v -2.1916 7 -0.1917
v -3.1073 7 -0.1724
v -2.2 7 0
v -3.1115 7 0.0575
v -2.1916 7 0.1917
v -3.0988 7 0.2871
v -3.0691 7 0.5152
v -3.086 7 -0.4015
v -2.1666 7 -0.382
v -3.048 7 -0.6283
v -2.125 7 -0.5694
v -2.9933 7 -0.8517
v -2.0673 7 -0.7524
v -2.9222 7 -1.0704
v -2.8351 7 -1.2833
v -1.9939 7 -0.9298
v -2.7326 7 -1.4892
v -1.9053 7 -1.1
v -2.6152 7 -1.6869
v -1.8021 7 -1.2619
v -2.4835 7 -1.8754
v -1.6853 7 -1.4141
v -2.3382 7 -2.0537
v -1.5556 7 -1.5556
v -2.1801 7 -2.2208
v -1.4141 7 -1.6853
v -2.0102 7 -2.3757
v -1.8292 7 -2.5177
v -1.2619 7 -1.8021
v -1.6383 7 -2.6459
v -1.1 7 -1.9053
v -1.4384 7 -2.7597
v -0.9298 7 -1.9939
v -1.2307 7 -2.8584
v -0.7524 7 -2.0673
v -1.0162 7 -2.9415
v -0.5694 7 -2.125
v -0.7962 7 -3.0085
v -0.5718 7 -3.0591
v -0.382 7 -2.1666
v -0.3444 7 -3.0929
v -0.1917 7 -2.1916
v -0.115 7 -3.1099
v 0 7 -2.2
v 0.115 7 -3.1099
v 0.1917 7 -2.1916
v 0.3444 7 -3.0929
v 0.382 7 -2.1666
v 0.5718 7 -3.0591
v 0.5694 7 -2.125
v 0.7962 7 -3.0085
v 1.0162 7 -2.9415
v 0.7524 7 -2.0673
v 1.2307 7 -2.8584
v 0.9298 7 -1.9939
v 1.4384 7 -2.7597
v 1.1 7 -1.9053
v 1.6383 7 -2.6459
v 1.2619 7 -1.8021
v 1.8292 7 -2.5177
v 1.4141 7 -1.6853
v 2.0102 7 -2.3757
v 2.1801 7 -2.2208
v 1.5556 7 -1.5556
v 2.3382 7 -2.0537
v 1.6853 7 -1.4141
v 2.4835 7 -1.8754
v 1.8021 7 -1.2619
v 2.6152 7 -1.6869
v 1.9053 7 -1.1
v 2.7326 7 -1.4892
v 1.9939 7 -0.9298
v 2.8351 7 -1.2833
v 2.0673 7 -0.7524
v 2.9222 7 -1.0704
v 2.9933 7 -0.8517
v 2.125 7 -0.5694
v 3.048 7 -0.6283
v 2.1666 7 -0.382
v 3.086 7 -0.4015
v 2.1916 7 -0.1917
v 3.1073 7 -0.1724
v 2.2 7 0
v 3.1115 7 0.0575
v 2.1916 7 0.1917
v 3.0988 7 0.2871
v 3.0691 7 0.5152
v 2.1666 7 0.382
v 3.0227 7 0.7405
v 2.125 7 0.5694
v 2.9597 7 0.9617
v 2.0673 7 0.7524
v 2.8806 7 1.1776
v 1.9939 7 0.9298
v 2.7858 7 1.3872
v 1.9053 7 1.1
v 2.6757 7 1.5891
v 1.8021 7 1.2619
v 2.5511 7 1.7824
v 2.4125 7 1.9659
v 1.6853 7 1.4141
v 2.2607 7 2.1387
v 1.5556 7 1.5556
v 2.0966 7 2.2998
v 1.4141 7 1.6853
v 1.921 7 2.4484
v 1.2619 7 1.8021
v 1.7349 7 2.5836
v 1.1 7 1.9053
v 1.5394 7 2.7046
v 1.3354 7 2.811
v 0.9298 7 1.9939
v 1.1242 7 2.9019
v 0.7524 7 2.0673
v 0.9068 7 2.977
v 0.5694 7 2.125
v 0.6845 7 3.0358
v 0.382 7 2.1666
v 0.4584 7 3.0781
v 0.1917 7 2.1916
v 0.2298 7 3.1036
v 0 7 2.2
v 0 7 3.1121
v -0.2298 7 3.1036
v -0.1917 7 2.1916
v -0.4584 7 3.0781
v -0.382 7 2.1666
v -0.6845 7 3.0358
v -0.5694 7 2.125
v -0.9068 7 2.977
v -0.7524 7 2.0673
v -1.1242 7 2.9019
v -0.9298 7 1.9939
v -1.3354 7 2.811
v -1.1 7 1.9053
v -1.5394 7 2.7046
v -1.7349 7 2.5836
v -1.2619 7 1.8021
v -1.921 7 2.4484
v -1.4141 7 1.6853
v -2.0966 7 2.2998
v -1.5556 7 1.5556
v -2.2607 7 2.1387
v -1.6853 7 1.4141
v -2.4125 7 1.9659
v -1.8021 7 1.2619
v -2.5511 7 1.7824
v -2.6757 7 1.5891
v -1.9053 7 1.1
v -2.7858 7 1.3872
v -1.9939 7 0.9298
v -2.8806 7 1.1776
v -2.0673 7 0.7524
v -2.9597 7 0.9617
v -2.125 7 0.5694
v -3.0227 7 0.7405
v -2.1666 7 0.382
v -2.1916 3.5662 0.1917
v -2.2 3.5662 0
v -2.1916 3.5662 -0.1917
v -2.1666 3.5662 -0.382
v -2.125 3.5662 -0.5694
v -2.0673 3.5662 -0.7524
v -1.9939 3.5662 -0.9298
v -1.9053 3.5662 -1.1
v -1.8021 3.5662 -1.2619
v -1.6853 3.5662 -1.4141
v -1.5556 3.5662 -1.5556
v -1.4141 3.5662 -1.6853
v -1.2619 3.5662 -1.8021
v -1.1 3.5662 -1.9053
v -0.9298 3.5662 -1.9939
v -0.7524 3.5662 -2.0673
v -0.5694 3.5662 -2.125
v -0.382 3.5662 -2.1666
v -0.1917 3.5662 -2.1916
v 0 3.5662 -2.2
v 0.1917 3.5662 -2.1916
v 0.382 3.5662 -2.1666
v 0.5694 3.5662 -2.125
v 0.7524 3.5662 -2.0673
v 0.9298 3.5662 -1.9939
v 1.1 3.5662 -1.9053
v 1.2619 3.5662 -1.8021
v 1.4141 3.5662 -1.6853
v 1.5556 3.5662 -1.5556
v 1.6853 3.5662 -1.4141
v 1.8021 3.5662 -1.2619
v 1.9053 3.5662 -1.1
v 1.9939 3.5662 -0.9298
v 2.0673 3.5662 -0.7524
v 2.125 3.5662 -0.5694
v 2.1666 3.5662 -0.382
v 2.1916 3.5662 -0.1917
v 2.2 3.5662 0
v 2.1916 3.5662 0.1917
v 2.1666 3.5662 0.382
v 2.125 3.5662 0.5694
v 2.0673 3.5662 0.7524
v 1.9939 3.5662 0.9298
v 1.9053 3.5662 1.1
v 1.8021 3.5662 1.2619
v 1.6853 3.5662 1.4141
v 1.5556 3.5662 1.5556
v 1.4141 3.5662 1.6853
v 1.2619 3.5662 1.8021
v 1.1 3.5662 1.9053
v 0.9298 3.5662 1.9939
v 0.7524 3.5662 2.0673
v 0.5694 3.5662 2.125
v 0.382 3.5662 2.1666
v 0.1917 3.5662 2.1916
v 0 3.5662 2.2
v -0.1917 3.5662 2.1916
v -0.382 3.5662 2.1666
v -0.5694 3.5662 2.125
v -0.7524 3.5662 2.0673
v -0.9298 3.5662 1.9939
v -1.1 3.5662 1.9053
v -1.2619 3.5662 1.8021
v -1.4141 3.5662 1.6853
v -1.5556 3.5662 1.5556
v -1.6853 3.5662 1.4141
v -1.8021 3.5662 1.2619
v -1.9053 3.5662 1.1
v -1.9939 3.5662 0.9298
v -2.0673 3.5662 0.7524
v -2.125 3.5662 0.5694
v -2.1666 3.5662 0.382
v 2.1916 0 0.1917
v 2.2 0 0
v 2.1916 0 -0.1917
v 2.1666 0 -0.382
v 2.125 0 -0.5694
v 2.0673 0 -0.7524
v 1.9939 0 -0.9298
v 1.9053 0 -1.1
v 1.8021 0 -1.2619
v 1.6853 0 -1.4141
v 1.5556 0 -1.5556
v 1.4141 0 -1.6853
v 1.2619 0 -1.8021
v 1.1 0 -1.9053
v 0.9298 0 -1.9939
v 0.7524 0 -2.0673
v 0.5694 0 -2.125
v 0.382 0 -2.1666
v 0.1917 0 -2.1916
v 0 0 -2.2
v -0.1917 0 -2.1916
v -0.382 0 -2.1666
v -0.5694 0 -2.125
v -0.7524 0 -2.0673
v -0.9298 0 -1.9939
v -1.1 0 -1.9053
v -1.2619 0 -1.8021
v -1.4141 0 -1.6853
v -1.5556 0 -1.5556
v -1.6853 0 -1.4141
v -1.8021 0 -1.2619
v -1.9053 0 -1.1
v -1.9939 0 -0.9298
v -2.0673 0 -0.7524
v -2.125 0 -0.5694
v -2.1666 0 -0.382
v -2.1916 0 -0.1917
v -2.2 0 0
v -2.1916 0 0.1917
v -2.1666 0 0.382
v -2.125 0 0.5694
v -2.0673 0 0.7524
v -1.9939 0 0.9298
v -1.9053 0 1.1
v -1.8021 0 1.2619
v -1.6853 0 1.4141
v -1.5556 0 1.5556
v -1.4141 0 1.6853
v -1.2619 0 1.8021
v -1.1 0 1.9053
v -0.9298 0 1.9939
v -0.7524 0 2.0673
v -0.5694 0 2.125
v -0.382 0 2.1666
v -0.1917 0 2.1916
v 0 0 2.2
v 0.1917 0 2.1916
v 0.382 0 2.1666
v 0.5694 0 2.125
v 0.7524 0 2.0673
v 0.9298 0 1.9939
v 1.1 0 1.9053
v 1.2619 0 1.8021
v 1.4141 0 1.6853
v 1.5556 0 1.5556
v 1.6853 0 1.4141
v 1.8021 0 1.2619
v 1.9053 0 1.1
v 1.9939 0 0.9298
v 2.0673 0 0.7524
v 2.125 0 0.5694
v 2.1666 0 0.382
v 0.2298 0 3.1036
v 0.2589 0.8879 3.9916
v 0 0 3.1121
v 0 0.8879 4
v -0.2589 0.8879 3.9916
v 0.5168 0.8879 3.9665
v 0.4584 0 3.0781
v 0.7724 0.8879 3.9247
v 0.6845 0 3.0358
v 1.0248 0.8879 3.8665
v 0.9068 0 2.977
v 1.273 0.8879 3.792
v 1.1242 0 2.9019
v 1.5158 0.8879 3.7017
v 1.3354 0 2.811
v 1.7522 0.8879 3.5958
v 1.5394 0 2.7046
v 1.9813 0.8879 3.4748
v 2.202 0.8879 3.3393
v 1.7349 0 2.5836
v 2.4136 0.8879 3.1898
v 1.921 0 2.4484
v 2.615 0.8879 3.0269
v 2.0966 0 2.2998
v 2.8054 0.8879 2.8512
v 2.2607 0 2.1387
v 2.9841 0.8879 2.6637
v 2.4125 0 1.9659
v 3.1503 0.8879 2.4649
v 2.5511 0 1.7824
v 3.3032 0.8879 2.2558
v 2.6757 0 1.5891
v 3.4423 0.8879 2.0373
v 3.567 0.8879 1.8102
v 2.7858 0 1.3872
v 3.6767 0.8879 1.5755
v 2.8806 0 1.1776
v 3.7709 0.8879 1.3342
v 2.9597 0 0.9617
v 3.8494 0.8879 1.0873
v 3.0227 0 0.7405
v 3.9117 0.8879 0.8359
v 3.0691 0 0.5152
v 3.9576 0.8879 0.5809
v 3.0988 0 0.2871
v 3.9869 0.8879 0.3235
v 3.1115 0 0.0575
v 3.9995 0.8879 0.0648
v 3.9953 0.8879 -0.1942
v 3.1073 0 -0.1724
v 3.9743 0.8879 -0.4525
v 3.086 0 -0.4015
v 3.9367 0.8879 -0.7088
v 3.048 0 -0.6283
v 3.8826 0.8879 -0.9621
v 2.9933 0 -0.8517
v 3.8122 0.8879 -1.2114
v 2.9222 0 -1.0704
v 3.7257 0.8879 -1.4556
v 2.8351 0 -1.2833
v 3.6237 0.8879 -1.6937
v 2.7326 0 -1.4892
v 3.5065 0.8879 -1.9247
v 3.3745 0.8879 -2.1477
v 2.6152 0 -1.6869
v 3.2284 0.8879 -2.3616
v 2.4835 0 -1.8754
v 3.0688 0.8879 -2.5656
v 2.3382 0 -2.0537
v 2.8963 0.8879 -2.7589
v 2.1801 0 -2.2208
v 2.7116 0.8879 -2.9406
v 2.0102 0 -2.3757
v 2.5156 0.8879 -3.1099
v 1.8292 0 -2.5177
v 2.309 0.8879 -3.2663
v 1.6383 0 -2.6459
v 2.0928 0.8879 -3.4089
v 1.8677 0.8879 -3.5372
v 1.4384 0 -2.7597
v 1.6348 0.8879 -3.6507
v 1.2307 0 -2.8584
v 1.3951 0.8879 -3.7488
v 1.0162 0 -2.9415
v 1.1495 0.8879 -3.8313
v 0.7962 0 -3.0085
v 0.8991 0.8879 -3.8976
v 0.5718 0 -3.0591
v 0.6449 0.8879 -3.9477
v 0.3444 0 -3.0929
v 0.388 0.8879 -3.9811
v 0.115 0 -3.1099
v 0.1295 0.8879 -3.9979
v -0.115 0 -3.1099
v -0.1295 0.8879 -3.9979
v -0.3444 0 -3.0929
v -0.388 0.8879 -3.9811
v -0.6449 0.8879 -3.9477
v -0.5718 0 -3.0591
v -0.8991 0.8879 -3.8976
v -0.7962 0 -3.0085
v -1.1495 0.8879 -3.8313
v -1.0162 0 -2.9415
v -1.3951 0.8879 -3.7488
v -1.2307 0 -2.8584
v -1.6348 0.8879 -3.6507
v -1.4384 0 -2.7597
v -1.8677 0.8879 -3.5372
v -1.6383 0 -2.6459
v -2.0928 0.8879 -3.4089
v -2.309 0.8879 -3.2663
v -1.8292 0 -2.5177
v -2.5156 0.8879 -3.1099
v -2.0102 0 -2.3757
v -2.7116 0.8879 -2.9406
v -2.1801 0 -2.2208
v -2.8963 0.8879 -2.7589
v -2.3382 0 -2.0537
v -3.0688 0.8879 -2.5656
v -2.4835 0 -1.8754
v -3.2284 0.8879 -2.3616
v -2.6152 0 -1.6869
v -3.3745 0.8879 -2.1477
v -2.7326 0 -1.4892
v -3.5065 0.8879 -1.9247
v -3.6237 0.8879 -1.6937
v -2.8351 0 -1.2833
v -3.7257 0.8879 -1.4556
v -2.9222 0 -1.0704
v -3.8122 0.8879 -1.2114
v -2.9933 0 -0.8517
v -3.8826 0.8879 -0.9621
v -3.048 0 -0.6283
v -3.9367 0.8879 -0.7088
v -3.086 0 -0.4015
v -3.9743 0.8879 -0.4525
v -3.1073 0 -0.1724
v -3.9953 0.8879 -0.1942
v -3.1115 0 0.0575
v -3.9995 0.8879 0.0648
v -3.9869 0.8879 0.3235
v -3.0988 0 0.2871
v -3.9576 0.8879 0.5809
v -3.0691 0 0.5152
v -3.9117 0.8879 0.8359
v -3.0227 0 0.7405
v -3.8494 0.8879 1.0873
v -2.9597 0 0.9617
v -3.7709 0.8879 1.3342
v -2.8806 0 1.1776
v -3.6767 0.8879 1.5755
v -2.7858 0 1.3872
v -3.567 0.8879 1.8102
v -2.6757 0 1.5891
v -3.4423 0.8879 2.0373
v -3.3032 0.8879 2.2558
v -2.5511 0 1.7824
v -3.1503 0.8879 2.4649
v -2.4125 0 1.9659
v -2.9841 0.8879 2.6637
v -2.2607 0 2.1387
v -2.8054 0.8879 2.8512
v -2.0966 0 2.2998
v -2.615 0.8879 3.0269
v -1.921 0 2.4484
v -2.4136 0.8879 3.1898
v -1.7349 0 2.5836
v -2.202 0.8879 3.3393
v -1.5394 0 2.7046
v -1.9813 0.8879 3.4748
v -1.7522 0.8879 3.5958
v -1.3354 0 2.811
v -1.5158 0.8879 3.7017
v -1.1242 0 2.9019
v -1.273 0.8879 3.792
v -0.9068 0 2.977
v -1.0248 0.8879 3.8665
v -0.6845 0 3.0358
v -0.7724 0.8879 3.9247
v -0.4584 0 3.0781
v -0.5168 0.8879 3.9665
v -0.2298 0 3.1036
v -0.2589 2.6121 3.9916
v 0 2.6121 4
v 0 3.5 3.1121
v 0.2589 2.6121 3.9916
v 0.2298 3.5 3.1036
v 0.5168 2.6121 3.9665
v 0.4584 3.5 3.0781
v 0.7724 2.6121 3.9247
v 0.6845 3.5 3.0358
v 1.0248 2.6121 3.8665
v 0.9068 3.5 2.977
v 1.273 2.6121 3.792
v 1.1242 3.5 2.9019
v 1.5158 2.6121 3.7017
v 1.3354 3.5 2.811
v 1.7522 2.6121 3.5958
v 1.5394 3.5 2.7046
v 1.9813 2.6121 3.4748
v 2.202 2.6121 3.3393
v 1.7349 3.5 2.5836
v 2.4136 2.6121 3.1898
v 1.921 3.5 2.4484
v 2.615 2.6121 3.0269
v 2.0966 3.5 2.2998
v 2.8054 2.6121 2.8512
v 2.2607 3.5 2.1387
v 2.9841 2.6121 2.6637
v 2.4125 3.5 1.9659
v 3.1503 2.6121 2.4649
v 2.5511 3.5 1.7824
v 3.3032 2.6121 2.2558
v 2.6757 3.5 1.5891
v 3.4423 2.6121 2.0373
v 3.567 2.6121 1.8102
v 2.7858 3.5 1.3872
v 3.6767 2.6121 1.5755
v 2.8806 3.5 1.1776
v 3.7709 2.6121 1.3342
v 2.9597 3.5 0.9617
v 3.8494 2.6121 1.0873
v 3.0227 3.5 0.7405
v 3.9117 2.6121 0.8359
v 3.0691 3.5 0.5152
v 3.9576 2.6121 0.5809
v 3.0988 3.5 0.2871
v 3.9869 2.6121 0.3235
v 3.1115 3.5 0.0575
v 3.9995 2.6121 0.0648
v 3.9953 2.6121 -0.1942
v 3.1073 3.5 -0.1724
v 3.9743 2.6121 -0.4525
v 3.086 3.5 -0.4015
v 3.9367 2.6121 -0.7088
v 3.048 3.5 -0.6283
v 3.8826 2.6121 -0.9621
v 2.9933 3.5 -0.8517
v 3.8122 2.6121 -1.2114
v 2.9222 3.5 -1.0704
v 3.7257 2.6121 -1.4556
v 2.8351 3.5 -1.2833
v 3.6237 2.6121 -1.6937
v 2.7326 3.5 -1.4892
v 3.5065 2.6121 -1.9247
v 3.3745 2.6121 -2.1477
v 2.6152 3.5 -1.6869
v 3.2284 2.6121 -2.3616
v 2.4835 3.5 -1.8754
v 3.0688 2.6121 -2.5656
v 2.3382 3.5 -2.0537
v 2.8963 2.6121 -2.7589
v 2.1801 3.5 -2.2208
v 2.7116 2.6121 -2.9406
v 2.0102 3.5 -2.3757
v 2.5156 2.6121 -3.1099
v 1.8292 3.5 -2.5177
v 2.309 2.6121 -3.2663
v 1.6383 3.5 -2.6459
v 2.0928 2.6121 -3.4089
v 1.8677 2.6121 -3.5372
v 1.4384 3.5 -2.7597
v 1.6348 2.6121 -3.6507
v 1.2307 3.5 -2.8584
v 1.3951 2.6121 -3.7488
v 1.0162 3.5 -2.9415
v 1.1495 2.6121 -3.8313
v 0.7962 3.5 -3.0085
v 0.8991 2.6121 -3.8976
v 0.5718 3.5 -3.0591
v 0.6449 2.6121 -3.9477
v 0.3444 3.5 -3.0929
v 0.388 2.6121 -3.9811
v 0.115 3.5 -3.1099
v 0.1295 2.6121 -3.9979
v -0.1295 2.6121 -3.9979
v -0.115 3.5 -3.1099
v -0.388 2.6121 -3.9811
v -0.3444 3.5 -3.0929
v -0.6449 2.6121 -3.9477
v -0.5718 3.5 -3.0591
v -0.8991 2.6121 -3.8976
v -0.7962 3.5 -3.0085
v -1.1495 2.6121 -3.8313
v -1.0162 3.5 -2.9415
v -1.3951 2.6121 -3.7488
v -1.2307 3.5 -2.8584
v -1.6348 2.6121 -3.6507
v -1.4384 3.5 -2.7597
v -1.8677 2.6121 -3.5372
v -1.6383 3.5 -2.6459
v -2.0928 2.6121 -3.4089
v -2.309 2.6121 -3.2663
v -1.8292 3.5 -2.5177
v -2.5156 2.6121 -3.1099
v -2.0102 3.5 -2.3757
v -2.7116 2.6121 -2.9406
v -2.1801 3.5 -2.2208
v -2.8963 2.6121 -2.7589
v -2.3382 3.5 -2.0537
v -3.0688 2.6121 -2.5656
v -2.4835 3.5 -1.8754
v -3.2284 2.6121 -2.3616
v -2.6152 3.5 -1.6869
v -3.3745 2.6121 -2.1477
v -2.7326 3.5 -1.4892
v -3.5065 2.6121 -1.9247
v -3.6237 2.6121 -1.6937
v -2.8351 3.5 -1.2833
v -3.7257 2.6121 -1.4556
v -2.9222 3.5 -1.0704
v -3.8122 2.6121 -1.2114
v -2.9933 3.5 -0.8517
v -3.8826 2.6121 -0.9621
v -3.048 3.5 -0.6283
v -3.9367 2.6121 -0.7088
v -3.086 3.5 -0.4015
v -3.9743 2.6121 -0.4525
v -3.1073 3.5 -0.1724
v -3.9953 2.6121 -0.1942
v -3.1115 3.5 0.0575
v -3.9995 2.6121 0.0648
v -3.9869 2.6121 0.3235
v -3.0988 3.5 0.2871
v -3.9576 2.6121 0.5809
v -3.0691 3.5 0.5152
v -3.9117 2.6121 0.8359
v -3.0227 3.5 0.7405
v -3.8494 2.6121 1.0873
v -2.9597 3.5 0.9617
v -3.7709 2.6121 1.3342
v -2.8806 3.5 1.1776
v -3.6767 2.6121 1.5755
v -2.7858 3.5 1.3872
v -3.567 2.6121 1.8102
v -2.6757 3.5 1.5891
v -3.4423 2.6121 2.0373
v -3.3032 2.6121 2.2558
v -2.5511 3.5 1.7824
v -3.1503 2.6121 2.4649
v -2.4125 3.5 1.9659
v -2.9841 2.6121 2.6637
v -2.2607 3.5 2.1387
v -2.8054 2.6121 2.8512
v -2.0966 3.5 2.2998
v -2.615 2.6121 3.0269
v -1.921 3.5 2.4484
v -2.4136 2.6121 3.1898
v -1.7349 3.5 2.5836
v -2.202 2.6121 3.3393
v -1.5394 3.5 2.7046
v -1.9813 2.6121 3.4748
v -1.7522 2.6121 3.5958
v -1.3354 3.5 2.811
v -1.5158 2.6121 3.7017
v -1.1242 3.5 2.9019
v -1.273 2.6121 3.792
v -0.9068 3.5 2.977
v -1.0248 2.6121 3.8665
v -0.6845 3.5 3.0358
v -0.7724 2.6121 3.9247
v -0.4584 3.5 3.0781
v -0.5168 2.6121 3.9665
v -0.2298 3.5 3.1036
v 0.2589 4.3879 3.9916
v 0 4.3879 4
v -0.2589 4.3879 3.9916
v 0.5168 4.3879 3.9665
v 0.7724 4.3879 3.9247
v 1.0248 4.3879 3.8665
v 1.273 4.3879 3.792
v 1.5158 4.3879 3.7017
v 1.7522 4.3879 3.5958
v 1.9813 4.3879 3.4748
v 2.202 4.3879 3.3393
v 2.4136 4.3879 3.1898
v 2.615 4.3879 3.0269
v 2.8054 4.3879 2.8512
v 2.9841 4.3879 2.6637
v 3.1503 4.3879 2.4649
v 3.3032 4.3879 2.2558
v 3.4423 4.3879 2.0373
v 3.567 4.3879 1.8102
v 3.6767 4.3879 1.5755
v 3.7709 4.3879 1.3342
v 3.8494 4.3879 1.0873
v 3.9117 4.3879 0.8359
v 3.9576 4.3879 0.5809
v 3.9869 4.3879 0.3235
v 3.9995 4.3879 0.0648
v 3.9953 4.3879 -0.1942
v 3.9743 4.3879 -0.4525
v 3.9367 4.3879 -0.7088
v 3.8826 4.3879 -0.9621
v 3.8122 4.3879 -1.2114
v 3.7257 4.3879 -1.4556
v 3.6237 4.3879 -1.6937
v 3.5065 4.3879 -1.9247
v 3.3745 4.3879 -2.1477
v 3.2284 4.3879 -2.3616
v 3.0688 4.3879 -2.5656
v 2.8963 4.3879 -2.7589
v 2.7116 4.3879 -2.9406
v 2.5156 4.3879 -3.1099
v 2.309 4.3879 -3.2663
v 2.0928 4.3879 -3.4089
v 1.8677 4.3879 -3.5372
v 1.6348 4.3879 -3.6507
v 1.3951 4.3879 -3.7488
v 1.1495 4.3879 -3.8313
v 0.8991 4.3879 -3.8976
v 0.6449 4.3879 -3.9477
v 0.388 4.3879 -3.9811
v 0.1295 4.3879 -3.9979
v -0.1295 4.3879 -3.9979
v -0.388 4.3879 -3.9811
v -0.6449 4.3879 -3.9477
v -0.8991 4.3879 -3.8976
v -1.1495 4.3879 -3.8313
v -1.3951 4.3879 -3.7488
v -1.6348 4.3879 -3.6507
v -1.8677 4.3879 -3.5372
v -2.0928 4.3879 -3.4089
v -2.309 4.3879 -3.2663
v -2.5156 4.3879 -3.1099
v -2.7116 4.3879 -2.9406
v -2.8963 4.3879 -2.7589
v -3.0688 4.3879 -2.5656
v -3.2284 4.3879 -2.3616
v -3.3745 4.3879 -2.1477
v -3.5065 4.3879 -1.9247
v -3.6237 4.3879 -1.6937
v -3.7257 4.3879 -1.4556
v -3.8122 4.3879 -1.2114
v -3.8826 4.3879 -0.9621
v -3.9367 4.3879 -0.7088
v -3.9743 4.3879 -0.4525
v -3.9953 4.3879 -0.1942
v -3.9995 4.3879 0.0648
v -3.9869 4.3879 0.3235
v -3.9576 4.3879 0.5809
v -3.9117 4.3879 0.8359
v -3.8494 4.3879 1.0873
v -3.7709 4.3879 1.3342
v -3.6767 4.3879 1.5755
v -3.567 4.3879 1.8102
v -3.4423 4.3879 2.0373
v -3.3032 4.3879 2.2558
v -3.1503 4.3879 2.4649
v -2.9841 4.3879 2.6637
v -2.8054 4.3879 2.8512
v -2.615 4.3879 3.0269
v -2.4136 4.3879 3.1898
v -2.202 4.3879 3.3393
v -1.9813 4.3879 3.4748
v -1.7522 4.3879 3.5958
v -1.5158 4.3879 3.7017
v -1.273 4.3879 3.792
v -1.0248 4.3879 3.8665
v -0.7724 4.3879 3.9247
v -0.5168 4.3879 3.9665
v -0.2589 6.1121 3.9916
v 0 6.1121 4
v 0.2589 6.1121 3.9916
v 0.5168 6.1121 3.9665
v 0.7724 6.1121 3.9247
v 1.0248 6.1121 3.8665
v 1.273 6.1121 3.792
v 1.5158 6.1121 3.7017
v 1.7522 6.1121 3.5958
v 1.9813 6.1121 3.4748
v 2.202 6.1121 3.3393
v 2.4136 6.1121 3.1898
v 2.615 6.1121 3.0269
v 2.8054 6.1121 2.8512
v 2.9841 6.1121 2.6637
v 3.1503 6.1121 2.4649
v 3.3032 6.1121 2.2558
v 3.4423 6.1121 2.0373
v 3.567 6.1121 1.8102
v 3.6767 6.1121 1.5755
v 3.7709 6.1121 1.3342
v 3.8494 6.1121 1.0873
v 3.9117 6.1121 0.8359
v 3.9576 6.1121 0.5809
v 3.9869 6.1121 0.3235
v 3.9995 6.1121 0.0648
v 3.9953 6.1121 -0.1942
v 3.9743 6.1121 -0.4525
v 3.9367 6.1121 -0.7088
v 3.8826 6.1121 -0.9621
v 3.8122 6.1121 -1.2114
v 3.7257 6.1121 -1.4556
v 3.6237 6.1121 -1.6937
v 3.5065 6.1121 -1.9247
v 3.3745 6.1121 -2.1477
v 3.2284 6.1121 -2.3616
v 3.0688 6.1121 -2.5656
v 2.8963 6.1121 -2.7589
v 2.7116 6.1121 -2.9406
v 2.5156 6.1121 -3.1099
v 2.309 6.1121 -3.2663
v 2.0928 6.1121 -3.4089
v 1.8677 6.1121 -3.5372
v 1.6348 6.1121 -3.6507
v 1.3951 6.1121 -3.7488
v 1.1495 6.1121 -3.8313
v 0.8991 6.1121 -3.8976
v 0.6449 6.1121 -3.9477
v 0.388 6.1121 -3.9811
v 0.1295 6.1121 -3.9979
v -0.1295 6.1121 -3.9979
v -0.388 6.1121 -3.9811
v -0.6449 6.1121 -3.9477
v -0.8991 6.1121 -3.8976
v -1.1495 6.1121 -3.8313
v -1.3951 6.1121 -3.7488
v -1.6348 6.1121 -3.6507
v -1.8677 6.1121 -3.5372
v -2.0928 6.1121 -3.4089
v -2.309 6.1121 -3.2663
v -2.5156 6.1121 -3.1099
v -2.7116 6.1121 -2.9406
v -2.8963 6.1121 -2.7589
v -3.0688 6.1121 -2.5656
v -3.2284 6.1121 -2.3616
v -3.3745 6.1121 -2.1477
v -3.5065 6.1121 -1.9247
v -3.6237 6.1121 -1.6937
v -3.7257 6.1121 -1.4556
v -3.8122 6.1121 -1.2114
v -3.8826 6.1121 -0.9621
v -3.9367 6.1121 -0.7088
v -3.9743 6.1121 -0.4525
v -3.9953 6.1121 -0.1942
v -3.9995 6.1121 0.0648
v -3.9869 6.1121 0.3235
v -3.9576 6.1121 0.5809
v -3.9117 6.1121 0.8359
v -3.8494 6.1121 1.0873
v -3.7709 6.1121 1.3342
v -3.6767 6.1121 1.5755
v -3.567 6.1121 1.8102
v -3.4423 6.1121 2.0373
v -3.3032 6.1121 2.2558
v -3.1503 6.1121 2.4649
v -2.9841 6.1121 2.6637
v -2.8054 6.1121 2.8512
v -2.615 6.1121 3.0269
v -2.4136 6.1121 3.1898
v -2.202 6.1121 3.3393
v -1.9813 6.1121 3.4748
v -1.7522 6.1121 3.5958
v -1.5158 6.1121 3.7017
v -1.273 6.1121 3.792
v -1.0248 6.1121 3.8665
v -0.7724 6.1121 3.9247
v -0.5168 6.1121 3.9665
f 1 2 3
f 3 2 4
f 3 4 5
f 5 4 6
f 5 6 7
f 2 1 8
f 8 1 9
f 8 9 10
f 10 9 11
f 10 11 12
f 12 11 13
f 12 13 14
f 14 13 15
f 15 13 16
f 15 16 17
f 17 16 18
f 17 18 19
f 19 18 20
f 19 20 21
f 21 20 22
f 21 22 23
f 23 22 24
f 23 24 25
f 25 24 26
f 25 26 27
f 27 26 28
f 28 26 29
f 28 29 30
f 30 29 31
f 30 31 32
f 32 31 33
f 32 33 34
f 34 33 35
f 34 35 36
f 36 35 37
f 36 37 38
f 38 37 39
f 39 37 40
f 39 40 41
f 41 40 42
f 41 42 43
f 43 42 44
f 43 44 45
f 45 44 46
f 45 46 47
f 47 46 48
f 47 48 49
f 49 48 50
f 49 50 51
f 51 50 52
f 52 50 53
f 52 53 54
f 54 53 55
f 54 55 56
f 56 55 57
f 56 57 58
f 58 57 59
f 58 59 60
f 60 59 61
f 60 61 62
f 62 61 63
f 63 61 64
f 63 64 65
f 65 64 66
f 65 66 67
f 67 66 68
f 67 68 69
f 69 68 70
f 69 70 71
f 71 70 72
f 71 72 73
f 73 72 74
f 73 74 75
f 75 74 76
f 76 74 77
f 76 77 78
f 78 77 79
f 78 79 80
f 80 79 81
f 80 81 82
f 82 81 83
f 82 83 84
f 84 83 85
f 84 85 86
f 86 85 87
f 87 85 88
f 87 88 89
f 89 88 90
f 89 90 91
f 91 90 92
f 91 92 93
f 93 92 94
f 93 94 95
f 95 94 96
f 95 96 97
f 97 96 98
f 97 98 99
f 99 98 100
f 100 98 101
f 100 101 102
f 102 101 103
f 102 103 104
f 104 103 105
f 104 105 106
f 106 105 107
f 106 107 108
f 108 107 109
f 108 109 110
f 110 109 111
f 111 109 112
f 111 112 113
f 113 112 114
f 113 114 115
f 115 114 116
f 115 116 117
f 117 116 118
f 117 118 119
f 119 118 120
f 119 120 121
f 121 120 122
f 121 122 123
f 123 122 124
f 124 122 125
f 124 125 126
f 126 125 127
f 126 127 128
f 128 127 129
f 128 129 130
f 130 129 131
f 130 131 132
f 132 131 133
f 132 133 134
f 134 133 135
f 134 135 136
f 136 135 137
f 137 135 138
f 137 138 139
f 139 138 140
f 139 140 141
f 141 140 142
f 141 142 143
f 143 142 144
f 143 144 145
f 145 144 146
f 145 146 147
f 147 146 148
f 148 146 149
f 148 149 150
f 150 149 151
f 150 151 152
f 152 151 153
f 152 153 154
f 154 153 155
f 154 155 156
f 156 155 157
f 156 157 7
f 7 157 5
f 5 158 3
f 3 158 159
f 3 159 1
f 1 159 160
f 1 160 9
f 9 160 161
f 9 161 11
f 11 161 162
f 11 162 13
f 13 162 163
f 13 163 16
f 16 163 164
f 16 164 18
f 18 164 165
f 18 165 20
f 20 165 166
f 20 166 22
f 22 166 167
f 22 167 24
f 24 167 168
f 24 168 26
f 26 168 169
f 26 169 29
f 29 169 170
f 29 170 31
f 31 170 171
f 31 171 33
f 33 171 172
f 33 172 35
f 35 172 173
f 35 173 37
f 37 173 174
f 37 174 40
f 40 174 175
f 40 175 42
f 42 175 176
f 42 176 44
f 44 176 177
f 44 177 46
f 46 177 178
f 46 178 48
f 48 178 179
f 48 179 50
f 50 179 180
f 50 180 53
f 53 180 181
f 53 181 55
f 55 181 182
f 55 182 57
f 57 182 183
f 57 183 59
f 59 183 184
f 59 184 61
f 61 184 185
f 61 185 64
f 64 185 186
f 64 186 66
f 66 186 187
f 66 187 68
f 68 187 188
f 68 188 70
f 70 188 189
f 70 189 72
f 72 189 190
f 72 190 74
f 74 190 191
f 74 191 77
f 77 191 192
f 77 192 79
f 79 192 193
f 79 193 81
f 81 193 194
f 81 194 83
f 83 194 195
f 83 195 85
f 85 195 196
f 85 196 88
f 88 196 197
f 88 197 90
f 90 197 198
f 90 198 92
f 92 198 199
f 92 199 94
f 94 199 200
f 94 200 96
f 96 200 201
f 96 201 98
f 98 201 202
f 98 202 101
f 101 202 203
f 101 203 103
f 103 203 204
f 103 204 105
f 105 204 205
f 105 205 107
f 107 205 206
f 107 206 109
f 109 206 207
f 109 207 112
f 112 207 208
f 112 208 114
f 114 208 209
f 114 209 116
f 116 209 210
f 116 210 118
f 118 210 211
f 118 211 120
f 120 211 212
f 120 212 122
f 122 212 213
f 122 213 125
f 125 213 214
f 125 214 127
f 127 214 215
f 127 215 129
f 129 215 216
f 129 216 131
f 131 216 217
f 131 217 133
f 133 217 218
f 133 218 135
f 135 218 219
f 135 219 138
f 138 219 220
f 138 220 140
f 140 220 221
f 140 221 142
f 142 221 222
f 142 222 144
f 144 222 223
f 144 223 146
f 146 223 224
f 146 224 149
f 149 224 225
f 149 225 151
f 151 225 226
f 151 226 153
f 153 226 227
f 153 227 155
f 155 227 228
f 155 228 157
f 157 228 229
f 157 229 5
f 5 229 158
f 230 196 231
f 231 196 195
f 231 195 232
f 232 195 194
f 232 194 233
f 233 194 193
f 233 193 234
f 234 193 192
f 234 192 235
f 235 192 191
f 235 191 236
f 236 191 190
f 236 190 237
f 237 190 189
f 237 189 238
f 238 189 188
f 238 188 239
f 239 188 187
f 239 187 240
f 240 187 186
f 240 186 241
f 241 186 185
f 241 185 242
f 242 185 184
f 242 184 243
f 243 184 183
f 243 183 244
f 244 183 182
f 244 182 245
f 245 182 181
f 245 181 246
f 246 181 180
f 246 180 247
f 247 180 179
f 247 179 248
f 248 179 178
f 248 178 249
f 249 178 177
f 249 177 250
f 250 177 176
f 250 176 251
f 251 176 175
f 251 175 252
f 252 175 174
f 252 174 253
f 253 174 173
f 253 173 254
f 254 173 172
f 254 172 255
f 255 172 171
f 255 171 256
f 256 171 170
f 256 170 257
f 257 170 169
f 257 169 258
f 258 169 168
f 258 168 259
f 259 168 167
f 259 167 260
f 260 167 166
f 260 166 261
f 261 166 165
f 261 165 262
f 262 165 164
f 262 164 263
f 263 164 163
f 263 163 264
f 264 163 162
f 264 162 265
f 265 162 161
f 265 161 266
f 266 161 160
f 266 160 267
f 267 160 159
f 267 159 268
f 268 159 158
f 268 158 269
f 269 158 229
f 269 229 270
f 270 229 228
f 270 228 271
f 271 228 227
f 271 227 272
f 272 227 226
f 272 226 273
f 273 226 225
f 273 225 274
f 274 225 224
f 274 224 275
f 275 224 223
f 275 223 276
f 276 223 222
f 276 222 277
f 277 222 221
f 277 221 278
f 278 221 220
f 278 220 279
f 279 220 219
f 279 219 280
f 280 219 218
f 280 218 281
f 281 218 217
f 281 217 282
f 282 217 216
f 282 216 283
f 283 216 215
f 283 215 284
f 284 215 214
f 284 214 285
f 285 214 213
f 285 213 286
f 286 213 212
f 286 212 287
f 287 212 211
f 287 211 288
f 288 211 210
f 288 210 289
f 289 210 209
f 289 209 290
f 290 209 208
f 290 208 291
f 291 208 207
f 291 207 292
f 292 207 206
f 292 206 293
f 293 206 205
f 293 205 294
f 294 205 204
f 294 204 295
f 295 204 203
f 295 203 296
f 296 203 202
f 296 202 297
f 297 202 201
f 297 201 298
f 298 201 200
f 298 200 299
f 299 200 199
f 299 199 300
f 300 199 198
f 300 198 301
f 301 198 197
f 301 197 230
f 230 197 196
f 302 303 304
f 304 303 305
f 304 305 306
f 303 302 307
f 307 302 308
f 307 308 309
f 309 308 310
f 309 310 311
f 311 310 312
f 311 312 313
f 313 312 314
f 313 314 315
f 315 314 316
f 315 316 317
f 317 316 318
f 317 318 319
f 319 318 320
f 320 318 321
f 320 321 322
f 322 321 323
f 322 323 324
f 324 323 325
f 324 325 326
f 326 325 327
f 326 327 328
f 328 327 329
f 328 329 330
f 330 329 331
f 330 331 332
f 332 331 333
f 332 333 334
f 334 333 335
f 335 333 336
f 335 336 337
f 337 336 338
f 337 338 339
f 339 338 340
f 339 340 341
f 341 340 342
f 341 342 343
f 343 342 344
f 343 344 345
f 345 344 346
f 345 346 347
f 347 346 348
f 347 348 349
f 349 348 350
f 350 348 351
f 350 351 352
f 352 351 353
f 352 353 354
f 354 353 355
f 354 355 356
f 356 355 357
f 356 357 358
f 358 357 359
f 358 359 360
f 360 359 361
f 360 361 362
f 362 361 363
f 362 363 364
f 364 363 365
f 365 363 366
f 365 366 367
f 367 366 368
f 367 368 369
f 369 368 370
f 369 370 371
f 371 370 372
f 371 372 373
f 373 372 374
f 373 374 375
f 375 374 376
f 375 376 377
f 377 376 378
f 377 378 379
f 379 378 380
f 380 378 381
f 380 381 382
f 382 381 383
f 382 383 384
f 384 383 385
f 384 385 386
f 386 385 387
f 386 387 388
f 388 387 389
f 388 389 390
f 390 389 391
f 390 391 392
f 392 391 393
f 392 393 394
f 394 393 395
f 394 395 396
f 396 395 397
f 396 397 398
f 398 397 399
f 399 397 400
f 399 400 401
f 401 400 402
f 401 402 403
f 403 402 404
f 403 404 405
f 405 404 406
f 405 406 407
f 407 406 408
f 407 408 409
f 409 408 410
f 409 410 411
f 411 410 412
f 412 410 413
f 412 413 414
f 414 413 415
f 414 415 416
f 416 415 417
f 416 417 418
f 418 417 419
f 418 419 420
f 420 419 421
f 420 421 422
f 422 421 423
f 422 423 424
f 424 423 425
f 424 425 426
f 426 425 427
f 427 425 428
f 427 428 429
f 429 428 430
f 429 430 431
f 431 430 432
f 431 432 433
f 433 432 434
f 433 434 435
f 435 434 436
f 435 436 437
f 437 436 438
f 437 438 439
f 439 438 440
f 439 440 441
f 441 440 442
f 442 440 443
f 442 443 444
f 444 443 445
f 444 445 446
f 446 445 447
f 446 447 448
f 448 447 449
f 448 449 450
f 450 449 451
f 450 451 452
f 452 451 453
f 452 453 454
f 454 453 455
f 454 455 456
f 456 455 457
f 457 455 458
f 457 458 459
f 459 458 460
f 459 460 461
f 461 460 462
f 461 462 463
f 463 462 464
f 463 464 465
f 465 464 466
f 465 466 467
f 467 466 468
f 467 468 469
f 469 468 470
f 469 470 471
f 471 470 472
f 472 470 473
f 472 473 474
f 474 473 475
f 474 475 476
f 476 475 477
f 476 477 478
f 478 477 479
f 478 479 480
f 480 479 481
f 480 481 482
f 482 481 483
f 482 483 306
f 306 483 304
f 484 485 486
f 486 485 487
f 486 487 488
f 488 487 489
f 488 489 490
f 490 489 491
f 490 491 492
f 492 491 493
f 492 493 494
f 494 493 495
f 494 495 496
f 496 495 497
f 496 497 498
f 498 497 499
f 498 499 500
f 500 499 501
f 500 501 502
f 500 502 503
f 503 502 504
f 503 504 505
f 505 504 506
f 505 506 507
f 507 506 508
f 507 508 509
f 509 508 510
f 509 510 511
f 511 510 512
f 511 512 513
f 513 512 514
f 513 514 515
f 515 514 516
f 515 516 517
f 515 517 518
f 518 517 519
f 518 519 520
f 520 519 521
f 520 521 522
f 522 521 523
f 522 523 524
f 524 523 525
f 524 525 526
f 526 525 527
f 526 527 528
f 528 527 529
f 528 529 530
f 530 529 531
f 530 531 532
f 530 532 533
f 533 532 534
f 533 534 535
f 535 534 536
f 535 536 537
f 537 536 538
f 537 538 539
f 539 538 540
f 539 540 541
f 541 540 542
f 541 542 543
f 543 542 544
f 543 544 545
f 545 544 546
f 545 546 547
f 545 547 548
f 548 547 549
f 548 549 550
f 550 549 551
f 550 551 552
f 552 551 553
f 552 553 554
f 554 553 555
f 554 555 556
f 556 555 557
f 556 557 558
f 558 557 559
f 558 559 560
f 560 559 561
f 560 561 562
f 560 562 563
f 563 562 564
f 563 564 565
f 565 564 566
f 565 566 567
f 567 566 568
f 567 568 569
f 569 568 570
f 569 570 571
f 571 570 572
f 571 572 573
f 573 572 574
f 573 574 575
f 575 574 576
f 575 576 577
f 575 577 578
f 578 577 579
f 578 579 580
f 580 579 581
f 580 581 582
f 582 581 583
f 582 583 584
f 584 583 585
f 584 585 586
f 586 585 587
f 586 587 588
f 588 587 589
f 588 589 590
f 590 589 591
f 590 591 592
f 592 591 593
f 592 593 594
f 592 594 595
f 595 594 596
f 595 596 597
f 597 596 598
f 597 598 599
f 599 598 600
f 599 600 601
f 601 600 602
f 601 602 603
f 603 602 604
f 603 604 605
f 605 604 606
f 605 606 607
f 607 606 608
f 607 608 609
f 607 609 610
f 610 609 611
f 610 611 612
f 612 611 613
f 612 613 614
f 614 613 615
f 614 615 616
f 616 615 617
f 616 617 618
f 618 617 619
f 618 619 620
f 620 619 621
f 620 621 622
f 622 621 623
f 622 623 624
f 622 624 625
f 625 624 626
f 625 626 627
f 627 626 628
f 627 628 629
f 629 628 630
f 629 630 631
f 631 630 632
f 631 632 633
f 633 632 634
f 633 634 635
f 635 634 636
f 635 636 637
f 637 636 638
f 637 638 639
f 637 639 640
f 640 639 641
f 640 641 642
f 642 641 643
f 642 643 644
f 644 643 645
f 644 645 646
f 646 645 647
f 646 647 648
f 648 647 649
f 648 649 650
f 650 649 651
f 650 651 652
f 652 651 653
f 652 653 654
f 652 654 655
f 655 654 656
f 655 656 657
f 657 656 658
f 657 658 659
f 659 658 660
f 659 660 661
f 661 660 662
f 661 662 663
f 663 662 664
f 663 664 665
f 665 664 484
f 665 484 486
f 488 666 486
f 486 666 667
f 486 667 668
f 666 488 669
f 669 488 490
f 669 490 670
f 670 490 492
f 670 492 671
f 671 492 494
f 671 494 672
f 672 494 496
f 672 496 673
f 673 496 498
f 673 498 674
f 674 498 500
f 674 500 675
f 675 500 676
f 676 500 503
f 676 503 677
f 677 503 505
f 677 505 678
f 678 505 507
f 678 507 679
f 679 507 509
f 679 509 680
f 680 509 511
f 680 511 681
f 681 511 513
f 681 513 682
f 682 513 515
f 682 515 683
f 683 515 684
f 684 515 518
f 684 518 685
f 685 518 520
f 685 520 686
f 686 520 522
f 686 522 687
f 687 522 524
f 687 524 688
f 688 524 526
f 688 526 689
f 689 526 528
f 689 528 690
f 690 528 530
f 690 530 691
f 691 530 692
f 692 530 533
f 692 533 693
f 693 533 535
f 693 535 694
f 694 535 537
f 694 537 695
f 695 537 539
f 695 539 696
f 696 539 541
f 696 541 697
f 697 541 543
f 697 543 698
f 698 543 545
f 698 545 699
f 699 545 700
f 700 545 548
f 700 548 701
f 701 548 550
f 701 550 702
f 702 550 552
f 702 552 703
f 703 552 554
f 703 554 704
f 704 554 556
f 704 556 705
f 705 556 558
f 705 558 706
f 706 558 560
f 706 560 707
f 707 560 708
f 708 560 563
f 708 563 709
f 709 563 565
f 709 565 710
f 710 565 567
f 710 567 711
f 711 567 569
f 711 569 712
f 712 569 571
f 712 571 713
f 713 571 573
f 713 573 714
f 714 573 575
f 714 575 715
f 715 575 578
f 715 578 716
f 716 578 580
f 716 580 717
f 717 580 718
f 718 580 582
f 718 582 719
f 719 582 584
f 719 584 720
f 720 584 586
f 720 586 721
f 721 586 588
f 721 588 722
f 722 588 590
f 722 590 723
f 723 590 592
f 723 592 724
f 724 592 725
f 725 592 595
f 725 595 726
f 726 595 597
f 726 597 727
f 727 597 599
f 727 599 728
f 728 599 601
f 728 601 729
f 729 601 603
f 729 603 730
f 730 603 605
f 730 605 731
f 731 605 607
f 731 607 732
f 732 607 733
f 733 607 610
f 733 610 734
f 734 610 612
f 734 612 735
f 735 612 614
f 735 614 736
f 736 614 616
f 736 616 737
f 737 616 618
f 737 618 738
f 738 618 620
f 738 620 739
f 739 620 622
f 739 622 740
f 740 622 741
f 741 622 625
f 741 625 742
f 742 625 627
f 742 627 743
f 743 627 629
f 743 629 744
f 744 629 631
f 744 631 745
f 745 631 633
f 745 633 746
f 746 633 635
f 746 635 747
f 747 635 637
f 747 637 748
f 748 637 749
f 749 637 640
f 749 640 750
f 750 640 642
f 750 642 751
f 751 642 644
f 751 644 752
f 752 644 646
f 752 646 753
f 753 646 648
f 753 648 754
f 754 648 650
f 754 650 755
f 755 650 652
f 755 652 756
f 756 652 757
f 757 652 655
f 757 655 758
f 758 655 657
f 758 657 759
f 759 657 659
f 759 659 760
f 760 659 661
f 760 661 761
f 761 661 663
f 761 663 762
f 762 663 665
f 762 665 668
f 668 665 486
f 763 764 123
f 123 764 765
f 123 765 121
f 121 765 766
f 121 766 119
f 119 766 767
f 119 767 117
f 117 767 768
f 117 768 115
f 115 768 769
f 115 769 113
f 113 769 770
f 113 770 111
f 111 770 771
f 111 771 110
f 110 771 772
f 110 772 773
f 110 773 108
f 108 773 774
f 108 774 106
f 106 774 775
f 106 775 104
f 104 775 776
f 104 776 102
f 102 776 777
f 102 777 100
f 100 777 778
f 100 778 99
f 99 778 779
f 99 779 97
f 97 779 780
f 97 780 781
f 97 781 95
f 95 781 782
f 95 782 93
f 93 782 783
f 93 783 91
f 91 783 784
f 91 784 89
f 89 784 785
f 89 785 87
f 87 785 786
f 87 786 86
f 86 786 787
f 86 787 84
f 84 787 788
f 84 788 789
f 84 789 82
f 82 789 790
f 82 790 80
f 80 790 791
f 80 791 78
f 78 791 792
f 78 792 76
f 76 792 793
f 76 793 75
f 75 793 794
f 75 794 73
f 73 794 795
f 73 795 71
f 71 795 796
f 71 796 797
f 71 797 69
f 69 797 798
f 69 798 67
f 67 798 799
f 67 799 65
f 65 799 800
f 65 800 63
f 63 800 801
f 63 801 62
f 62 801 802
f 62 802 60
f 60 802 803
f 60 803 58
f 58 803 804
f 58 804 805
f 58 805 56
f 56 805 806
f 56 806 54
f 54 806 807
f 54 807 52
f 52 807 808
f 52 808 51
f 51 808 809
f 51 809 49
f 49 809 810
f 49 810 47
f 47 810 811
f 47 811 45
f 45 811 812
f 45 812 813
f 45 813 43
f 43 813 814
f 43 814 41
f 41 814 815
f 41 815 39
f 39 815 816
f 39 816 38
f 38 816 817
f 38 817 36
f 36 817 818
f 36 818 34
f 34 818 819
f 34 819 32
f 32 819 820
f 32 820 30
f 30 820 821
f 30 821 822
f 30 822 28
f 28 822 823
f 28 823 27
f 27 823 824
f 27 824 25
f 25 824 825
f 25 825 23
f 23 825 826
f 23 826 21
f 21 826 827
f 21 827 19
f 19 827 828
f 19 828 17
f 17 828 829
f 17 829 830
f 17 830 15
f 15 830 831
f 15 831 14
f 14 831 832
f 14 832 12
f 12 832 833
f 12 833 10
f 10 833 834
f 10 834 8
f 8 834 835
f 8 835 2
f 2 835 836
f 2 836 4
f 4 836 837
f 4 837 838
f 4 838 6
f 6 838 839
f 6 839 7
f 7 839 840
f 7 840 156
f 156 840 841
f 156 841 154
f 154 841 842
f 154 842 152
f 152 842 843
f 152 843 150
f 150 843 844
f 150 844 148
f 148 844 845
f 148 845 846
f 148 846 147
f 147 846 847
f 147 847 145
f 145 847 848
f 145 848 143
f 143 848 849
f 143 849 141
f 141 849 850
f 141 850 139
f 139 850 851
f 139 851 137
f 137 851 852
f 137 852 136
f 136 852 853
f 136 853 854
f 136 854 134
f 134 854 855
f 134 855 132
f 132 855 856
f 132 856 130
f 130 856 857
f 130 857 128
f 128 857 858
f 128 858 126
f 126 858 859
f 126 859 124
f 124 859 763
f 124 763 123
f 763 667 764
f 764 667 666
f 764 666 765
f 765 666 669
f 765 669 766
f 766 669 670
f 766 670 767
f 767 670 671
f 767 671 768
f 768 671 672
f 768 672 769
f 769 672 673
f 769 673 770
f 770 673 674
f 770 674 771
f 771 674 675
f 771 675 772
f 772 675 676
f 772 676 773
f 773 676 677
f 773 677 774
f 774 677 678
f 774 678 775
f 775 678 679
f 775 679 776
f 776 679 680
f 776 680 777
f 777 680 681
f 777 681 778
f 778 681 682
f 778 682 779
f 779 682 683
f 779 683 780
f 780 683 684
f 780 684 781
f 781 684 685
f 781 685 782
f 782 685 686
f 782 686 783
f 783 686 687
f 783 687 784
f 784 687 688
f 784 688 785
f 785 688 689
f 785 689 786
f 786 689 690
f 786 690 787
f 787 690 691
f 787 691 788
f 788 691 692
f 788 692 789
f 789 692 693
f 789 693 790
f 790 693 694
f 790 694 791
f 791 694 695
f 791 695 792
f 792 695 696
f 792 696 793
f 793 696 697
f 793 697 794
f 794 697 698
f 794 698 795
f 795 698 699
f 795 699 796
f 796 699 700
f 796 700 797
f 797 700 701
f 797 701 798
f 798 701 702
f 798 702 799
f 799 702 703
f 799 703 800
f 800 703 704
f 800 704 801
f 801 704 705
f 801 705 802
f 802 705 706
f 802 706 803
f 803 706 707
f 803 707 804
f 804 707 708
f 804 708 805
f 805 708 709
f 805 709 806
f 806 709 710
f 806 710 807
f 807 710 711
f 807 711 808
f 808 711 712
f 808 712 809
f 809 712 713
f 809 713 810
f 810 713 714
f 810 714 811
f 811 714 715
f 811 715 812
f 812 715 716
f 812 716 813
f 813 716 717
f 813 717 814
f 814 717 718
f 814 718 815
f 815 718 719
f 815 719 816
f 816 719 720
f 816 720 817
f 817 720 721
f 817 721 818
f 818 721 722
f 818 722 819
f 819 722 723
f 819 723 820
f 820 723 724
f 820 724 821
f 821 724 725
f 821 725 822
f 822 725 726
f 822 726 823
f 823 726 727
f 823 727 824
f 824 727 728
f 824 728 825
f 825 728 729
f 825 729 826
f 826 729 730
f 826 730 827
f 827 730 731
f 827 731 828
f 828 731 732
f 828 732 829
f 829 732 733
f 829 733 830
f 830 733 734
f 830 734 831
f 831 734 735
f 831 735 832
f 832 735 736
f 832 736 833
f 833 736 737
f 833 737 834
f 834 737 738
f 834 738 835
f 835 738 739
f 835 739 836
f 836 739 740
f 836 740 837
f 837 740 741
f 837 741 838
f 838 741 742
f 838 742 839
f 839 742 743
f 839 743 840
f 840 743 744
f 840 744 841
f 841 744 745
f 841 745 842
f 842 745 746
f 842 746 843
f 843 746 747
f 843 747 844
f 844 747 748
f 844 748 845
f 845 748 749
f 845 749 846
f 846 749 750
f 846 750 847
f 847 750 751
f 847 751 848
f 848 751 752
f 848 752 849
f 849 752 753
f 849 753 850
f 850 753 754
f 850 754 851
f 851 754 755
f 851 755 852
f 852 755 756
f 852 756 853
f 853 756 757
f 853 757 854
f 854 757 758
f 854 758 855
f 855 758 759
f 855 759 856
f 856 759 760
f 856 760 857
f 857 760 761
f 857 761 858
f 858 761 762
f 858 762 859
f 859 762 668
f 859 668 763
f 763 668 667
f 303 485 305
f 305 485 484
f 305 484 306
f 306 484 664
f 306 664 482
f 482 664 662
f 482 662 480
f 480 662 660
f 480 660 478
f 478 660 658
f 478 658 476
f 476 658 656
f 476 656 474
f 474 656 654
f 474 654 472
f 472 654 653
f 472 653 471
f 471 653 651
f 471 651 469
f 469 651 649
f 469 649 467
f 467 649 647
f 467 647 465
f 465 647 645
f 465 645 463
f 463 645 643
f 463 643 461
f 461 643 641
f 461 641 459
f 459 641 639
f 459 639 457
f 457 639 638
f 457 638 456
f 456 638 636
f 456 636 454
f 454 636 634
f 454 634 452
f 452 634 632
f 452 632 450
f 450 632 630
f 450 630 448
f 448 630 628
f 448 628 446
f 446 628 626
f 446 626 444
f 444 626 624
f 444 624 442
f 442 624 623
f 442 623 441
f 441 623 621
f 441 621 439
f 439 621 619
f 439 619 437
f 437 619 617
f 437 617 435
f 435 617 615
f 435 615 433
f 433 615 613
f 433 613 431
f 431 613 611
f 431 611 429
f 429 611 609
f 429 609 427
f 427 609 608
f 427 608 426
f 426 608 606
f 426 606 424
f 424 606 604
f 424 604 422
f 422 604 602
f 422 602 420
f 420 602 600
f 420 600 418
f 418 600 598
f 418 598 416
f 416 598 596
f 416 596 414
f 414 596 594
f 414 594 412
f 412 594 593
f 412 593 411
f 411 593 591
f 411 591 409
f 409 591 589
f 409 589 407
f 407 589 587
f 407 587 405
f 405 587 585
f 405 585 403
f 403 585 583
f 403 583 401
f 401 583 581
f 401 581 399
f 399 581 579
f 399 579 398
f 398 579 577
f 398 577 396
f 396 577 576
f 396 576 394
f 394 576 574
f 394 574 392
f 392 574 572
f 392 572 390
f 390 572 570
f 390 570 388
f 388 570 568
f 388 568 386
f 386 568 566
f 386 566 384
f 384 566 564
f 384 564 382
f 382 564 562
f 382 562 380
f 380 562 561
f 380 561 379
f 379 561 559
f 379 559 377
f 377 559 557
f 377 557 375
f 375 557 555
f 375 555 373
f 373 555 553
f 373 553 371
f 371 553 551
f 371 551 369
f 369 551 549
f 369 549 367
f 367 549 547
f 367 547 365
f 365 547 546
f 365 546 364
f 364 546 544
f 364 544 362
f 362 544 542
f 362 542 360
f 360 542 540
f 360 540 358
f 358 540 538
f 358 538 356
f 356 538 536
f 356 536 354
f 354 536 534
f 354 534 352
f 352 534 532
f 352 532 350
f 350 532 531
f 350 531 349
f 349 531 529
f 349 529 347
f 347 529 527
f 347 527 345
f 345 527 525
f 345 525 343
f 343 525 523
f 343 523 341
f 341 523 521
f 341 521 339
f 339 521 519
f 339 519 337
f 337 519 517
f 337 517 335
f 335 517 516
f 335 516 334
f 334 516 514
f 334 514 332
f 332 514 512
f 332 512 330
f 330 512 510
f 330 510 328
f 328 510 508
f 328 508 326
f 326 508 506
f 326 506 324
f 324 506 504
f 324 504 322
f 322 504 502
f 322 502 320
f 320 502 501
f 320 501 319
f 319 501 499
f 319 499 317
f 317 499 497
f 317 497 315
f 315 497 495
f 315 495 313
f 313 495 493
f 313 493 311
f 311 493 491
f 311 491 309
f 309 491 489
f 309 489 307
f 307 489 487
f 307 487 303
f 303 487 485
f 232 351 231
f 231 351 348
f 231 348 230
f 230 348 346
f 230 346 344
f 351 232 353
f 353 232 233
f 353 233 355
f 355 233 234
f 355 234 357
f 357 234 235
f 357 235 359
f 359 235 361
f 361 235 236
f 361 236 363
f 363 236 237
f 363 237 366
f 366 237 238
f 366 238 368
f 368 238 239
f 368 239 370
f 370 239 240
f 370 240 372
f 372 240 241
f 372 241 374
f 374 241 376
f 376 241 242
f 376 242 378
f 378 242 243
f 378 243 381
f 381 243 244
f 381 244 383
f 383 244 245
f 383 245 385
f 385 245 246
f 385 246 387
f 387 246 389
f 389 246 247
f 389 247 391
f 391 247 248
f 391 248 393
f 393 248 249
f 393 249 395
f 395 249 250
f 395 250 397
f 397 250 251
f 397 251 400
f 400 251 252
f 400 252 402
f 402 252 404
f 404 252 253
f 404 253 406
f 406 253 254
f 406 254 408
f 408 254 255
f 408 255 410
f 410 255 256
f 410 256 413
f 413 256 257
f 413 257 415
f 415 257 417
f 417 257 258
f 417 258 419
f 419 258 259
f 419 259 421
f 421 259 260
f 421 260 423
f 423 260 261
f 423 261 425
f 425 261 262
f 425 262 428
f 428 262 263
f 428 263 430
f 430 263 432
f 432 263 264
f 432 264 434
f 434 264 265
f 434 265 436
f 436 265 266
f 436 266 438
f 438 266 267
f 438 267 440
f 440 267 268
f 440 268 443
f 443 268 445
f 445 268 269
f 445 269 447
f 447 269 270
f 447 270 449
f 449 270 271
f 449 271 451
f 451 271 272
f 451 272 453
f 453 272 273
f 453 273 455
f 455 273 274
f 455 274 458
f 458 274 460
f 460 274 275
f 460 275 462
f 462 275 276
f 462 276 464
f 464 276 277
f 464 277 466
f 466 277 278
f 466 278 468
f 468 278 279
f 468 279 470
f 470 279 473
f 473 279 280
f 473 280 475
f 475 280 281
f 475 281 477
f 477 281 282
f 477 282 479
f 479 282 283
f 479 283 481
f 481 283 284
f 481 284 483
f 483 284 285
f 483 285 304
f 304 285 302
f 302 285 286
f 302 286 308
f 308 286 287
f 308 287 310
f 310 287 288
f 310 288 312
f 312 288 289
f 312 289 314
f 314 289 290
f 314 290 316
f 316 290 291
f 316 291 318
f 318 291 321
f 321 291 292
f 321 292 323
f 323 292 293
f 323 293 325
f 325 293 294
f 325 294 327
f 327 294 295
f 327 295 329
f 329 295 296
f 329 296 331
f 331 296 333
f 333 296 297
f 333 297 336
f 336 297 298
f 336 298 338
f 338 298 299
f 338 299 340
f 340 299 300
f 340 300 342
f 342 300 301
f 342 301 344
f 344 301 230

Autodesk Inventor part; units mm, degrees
ref_plane "YZ Plane" through (0, 0, 0) normal (1, 0, 0) x (0, 1, 0)
ref_plane "XZ Plane" through (0, 0, 0) normal (0, 1, 0) x (-1, 0, 0)
sketch "Sketch1" plane through (0, 0, 0) normal (0, 1, 0) x (-1, 0, 0)
  circle A0 centre (0, 0) radius 4
  dimension "d0" = 8
extrude "Extrusion1" add sketch "Sketch1" along normal blind 7
sketch "Sketch2" plane through (0, 7, 0) normal (0, 1, 0) x (1, 0, 0)
  circle A0 centre (0, 0) radius 5.75
  dimension "d3" = 11.5
extrude "Extrusion2" add sketch "Sketch2" along normal blind 3.2
sketch "Sketch4" plane through (0, 0, 0) normal (1, 0, 0) x (0, 1, 0)
  line L0 (20.4, 3.1121) -> (19.5121, 4)
  line L1 (19.5121, 4) -> (17.7879, 4)
  line L2 (16.9, 3.1121) -> (17.7879, 4)
  line L3 (13.4, 3.1121) -> (14.2879, 4)
  line L4 (14.2879, 4) -> (16.0121, 4)
  line L5 (16.9, 3.1121) -> (16.0121, 4)
  line L6 (13.4, 3.1121) -> (13.4, 6.6121)
  line L7 (13.4, 8.5445) -> (20.4, 8.5445)
  line L8 (20.4, 8.5445) -> (20.4, 3.1121)
  line L9 (0, 3.1121) -> (0.8879, 4)
  line L10 (0.8879, 4) -> (2.6121, 4)
  line L11 (3.5, 3.1121) -> (2.6121, 4)
  line L12 (3.5, 3.1121) -> (4.3879, 4)
  line L13 (6.1121, 4) -> (4.3879, 4)
  line L14 (7, 3.1121) -> (6.1121, 4)
  line L15 (7, 3.1121) -> (7, 6.6121)
  line L16 (7, 8.5445) -> (0, 8.5445)
  line L17 (0, 8.5445) -> (0, 3.1121)
  line L18 (13.4, 6.6121) -> (7, 6.6121)
  line L19 (13.4, 8.5445) -> (7, 8.5445)
  line L20 (-4.08, 0) -> (24.48, 0) projected
  point P0 (0, 0)
revolve "Revolution1" cut sketch "Sketch4" angle 360 about axis through (0, -10, 0) along (0, 1, 0)
hole "Hole2" at (0, 0, 0) direction (0, 1, 0) diameter 4.4 end through all
ref_plane "Work Plane1" through (0, 7, 5.75) normal (0, 0, 1) x (1, 0, 0)
sketch "Sketch5" plane through (0, 7, 5.75) normal (0, 0, 1) x (1, 0, 0)
  line L0 (5.75, 3.2) -> (-5.75, 3.2) projected
  line L1 (-5.75, 0) -> (5.75, 0) projected
  line L2 (-5.75, 0) -> (-5.75, 3.2)
  line L3 (5.75, 3.2) -> (5.75, 0)
  point P0 (0, -7)
extrude "Extrusion4" cut sketch "Sketch5" against normal through all
properties part number "M4-608 Straight Spacer"
